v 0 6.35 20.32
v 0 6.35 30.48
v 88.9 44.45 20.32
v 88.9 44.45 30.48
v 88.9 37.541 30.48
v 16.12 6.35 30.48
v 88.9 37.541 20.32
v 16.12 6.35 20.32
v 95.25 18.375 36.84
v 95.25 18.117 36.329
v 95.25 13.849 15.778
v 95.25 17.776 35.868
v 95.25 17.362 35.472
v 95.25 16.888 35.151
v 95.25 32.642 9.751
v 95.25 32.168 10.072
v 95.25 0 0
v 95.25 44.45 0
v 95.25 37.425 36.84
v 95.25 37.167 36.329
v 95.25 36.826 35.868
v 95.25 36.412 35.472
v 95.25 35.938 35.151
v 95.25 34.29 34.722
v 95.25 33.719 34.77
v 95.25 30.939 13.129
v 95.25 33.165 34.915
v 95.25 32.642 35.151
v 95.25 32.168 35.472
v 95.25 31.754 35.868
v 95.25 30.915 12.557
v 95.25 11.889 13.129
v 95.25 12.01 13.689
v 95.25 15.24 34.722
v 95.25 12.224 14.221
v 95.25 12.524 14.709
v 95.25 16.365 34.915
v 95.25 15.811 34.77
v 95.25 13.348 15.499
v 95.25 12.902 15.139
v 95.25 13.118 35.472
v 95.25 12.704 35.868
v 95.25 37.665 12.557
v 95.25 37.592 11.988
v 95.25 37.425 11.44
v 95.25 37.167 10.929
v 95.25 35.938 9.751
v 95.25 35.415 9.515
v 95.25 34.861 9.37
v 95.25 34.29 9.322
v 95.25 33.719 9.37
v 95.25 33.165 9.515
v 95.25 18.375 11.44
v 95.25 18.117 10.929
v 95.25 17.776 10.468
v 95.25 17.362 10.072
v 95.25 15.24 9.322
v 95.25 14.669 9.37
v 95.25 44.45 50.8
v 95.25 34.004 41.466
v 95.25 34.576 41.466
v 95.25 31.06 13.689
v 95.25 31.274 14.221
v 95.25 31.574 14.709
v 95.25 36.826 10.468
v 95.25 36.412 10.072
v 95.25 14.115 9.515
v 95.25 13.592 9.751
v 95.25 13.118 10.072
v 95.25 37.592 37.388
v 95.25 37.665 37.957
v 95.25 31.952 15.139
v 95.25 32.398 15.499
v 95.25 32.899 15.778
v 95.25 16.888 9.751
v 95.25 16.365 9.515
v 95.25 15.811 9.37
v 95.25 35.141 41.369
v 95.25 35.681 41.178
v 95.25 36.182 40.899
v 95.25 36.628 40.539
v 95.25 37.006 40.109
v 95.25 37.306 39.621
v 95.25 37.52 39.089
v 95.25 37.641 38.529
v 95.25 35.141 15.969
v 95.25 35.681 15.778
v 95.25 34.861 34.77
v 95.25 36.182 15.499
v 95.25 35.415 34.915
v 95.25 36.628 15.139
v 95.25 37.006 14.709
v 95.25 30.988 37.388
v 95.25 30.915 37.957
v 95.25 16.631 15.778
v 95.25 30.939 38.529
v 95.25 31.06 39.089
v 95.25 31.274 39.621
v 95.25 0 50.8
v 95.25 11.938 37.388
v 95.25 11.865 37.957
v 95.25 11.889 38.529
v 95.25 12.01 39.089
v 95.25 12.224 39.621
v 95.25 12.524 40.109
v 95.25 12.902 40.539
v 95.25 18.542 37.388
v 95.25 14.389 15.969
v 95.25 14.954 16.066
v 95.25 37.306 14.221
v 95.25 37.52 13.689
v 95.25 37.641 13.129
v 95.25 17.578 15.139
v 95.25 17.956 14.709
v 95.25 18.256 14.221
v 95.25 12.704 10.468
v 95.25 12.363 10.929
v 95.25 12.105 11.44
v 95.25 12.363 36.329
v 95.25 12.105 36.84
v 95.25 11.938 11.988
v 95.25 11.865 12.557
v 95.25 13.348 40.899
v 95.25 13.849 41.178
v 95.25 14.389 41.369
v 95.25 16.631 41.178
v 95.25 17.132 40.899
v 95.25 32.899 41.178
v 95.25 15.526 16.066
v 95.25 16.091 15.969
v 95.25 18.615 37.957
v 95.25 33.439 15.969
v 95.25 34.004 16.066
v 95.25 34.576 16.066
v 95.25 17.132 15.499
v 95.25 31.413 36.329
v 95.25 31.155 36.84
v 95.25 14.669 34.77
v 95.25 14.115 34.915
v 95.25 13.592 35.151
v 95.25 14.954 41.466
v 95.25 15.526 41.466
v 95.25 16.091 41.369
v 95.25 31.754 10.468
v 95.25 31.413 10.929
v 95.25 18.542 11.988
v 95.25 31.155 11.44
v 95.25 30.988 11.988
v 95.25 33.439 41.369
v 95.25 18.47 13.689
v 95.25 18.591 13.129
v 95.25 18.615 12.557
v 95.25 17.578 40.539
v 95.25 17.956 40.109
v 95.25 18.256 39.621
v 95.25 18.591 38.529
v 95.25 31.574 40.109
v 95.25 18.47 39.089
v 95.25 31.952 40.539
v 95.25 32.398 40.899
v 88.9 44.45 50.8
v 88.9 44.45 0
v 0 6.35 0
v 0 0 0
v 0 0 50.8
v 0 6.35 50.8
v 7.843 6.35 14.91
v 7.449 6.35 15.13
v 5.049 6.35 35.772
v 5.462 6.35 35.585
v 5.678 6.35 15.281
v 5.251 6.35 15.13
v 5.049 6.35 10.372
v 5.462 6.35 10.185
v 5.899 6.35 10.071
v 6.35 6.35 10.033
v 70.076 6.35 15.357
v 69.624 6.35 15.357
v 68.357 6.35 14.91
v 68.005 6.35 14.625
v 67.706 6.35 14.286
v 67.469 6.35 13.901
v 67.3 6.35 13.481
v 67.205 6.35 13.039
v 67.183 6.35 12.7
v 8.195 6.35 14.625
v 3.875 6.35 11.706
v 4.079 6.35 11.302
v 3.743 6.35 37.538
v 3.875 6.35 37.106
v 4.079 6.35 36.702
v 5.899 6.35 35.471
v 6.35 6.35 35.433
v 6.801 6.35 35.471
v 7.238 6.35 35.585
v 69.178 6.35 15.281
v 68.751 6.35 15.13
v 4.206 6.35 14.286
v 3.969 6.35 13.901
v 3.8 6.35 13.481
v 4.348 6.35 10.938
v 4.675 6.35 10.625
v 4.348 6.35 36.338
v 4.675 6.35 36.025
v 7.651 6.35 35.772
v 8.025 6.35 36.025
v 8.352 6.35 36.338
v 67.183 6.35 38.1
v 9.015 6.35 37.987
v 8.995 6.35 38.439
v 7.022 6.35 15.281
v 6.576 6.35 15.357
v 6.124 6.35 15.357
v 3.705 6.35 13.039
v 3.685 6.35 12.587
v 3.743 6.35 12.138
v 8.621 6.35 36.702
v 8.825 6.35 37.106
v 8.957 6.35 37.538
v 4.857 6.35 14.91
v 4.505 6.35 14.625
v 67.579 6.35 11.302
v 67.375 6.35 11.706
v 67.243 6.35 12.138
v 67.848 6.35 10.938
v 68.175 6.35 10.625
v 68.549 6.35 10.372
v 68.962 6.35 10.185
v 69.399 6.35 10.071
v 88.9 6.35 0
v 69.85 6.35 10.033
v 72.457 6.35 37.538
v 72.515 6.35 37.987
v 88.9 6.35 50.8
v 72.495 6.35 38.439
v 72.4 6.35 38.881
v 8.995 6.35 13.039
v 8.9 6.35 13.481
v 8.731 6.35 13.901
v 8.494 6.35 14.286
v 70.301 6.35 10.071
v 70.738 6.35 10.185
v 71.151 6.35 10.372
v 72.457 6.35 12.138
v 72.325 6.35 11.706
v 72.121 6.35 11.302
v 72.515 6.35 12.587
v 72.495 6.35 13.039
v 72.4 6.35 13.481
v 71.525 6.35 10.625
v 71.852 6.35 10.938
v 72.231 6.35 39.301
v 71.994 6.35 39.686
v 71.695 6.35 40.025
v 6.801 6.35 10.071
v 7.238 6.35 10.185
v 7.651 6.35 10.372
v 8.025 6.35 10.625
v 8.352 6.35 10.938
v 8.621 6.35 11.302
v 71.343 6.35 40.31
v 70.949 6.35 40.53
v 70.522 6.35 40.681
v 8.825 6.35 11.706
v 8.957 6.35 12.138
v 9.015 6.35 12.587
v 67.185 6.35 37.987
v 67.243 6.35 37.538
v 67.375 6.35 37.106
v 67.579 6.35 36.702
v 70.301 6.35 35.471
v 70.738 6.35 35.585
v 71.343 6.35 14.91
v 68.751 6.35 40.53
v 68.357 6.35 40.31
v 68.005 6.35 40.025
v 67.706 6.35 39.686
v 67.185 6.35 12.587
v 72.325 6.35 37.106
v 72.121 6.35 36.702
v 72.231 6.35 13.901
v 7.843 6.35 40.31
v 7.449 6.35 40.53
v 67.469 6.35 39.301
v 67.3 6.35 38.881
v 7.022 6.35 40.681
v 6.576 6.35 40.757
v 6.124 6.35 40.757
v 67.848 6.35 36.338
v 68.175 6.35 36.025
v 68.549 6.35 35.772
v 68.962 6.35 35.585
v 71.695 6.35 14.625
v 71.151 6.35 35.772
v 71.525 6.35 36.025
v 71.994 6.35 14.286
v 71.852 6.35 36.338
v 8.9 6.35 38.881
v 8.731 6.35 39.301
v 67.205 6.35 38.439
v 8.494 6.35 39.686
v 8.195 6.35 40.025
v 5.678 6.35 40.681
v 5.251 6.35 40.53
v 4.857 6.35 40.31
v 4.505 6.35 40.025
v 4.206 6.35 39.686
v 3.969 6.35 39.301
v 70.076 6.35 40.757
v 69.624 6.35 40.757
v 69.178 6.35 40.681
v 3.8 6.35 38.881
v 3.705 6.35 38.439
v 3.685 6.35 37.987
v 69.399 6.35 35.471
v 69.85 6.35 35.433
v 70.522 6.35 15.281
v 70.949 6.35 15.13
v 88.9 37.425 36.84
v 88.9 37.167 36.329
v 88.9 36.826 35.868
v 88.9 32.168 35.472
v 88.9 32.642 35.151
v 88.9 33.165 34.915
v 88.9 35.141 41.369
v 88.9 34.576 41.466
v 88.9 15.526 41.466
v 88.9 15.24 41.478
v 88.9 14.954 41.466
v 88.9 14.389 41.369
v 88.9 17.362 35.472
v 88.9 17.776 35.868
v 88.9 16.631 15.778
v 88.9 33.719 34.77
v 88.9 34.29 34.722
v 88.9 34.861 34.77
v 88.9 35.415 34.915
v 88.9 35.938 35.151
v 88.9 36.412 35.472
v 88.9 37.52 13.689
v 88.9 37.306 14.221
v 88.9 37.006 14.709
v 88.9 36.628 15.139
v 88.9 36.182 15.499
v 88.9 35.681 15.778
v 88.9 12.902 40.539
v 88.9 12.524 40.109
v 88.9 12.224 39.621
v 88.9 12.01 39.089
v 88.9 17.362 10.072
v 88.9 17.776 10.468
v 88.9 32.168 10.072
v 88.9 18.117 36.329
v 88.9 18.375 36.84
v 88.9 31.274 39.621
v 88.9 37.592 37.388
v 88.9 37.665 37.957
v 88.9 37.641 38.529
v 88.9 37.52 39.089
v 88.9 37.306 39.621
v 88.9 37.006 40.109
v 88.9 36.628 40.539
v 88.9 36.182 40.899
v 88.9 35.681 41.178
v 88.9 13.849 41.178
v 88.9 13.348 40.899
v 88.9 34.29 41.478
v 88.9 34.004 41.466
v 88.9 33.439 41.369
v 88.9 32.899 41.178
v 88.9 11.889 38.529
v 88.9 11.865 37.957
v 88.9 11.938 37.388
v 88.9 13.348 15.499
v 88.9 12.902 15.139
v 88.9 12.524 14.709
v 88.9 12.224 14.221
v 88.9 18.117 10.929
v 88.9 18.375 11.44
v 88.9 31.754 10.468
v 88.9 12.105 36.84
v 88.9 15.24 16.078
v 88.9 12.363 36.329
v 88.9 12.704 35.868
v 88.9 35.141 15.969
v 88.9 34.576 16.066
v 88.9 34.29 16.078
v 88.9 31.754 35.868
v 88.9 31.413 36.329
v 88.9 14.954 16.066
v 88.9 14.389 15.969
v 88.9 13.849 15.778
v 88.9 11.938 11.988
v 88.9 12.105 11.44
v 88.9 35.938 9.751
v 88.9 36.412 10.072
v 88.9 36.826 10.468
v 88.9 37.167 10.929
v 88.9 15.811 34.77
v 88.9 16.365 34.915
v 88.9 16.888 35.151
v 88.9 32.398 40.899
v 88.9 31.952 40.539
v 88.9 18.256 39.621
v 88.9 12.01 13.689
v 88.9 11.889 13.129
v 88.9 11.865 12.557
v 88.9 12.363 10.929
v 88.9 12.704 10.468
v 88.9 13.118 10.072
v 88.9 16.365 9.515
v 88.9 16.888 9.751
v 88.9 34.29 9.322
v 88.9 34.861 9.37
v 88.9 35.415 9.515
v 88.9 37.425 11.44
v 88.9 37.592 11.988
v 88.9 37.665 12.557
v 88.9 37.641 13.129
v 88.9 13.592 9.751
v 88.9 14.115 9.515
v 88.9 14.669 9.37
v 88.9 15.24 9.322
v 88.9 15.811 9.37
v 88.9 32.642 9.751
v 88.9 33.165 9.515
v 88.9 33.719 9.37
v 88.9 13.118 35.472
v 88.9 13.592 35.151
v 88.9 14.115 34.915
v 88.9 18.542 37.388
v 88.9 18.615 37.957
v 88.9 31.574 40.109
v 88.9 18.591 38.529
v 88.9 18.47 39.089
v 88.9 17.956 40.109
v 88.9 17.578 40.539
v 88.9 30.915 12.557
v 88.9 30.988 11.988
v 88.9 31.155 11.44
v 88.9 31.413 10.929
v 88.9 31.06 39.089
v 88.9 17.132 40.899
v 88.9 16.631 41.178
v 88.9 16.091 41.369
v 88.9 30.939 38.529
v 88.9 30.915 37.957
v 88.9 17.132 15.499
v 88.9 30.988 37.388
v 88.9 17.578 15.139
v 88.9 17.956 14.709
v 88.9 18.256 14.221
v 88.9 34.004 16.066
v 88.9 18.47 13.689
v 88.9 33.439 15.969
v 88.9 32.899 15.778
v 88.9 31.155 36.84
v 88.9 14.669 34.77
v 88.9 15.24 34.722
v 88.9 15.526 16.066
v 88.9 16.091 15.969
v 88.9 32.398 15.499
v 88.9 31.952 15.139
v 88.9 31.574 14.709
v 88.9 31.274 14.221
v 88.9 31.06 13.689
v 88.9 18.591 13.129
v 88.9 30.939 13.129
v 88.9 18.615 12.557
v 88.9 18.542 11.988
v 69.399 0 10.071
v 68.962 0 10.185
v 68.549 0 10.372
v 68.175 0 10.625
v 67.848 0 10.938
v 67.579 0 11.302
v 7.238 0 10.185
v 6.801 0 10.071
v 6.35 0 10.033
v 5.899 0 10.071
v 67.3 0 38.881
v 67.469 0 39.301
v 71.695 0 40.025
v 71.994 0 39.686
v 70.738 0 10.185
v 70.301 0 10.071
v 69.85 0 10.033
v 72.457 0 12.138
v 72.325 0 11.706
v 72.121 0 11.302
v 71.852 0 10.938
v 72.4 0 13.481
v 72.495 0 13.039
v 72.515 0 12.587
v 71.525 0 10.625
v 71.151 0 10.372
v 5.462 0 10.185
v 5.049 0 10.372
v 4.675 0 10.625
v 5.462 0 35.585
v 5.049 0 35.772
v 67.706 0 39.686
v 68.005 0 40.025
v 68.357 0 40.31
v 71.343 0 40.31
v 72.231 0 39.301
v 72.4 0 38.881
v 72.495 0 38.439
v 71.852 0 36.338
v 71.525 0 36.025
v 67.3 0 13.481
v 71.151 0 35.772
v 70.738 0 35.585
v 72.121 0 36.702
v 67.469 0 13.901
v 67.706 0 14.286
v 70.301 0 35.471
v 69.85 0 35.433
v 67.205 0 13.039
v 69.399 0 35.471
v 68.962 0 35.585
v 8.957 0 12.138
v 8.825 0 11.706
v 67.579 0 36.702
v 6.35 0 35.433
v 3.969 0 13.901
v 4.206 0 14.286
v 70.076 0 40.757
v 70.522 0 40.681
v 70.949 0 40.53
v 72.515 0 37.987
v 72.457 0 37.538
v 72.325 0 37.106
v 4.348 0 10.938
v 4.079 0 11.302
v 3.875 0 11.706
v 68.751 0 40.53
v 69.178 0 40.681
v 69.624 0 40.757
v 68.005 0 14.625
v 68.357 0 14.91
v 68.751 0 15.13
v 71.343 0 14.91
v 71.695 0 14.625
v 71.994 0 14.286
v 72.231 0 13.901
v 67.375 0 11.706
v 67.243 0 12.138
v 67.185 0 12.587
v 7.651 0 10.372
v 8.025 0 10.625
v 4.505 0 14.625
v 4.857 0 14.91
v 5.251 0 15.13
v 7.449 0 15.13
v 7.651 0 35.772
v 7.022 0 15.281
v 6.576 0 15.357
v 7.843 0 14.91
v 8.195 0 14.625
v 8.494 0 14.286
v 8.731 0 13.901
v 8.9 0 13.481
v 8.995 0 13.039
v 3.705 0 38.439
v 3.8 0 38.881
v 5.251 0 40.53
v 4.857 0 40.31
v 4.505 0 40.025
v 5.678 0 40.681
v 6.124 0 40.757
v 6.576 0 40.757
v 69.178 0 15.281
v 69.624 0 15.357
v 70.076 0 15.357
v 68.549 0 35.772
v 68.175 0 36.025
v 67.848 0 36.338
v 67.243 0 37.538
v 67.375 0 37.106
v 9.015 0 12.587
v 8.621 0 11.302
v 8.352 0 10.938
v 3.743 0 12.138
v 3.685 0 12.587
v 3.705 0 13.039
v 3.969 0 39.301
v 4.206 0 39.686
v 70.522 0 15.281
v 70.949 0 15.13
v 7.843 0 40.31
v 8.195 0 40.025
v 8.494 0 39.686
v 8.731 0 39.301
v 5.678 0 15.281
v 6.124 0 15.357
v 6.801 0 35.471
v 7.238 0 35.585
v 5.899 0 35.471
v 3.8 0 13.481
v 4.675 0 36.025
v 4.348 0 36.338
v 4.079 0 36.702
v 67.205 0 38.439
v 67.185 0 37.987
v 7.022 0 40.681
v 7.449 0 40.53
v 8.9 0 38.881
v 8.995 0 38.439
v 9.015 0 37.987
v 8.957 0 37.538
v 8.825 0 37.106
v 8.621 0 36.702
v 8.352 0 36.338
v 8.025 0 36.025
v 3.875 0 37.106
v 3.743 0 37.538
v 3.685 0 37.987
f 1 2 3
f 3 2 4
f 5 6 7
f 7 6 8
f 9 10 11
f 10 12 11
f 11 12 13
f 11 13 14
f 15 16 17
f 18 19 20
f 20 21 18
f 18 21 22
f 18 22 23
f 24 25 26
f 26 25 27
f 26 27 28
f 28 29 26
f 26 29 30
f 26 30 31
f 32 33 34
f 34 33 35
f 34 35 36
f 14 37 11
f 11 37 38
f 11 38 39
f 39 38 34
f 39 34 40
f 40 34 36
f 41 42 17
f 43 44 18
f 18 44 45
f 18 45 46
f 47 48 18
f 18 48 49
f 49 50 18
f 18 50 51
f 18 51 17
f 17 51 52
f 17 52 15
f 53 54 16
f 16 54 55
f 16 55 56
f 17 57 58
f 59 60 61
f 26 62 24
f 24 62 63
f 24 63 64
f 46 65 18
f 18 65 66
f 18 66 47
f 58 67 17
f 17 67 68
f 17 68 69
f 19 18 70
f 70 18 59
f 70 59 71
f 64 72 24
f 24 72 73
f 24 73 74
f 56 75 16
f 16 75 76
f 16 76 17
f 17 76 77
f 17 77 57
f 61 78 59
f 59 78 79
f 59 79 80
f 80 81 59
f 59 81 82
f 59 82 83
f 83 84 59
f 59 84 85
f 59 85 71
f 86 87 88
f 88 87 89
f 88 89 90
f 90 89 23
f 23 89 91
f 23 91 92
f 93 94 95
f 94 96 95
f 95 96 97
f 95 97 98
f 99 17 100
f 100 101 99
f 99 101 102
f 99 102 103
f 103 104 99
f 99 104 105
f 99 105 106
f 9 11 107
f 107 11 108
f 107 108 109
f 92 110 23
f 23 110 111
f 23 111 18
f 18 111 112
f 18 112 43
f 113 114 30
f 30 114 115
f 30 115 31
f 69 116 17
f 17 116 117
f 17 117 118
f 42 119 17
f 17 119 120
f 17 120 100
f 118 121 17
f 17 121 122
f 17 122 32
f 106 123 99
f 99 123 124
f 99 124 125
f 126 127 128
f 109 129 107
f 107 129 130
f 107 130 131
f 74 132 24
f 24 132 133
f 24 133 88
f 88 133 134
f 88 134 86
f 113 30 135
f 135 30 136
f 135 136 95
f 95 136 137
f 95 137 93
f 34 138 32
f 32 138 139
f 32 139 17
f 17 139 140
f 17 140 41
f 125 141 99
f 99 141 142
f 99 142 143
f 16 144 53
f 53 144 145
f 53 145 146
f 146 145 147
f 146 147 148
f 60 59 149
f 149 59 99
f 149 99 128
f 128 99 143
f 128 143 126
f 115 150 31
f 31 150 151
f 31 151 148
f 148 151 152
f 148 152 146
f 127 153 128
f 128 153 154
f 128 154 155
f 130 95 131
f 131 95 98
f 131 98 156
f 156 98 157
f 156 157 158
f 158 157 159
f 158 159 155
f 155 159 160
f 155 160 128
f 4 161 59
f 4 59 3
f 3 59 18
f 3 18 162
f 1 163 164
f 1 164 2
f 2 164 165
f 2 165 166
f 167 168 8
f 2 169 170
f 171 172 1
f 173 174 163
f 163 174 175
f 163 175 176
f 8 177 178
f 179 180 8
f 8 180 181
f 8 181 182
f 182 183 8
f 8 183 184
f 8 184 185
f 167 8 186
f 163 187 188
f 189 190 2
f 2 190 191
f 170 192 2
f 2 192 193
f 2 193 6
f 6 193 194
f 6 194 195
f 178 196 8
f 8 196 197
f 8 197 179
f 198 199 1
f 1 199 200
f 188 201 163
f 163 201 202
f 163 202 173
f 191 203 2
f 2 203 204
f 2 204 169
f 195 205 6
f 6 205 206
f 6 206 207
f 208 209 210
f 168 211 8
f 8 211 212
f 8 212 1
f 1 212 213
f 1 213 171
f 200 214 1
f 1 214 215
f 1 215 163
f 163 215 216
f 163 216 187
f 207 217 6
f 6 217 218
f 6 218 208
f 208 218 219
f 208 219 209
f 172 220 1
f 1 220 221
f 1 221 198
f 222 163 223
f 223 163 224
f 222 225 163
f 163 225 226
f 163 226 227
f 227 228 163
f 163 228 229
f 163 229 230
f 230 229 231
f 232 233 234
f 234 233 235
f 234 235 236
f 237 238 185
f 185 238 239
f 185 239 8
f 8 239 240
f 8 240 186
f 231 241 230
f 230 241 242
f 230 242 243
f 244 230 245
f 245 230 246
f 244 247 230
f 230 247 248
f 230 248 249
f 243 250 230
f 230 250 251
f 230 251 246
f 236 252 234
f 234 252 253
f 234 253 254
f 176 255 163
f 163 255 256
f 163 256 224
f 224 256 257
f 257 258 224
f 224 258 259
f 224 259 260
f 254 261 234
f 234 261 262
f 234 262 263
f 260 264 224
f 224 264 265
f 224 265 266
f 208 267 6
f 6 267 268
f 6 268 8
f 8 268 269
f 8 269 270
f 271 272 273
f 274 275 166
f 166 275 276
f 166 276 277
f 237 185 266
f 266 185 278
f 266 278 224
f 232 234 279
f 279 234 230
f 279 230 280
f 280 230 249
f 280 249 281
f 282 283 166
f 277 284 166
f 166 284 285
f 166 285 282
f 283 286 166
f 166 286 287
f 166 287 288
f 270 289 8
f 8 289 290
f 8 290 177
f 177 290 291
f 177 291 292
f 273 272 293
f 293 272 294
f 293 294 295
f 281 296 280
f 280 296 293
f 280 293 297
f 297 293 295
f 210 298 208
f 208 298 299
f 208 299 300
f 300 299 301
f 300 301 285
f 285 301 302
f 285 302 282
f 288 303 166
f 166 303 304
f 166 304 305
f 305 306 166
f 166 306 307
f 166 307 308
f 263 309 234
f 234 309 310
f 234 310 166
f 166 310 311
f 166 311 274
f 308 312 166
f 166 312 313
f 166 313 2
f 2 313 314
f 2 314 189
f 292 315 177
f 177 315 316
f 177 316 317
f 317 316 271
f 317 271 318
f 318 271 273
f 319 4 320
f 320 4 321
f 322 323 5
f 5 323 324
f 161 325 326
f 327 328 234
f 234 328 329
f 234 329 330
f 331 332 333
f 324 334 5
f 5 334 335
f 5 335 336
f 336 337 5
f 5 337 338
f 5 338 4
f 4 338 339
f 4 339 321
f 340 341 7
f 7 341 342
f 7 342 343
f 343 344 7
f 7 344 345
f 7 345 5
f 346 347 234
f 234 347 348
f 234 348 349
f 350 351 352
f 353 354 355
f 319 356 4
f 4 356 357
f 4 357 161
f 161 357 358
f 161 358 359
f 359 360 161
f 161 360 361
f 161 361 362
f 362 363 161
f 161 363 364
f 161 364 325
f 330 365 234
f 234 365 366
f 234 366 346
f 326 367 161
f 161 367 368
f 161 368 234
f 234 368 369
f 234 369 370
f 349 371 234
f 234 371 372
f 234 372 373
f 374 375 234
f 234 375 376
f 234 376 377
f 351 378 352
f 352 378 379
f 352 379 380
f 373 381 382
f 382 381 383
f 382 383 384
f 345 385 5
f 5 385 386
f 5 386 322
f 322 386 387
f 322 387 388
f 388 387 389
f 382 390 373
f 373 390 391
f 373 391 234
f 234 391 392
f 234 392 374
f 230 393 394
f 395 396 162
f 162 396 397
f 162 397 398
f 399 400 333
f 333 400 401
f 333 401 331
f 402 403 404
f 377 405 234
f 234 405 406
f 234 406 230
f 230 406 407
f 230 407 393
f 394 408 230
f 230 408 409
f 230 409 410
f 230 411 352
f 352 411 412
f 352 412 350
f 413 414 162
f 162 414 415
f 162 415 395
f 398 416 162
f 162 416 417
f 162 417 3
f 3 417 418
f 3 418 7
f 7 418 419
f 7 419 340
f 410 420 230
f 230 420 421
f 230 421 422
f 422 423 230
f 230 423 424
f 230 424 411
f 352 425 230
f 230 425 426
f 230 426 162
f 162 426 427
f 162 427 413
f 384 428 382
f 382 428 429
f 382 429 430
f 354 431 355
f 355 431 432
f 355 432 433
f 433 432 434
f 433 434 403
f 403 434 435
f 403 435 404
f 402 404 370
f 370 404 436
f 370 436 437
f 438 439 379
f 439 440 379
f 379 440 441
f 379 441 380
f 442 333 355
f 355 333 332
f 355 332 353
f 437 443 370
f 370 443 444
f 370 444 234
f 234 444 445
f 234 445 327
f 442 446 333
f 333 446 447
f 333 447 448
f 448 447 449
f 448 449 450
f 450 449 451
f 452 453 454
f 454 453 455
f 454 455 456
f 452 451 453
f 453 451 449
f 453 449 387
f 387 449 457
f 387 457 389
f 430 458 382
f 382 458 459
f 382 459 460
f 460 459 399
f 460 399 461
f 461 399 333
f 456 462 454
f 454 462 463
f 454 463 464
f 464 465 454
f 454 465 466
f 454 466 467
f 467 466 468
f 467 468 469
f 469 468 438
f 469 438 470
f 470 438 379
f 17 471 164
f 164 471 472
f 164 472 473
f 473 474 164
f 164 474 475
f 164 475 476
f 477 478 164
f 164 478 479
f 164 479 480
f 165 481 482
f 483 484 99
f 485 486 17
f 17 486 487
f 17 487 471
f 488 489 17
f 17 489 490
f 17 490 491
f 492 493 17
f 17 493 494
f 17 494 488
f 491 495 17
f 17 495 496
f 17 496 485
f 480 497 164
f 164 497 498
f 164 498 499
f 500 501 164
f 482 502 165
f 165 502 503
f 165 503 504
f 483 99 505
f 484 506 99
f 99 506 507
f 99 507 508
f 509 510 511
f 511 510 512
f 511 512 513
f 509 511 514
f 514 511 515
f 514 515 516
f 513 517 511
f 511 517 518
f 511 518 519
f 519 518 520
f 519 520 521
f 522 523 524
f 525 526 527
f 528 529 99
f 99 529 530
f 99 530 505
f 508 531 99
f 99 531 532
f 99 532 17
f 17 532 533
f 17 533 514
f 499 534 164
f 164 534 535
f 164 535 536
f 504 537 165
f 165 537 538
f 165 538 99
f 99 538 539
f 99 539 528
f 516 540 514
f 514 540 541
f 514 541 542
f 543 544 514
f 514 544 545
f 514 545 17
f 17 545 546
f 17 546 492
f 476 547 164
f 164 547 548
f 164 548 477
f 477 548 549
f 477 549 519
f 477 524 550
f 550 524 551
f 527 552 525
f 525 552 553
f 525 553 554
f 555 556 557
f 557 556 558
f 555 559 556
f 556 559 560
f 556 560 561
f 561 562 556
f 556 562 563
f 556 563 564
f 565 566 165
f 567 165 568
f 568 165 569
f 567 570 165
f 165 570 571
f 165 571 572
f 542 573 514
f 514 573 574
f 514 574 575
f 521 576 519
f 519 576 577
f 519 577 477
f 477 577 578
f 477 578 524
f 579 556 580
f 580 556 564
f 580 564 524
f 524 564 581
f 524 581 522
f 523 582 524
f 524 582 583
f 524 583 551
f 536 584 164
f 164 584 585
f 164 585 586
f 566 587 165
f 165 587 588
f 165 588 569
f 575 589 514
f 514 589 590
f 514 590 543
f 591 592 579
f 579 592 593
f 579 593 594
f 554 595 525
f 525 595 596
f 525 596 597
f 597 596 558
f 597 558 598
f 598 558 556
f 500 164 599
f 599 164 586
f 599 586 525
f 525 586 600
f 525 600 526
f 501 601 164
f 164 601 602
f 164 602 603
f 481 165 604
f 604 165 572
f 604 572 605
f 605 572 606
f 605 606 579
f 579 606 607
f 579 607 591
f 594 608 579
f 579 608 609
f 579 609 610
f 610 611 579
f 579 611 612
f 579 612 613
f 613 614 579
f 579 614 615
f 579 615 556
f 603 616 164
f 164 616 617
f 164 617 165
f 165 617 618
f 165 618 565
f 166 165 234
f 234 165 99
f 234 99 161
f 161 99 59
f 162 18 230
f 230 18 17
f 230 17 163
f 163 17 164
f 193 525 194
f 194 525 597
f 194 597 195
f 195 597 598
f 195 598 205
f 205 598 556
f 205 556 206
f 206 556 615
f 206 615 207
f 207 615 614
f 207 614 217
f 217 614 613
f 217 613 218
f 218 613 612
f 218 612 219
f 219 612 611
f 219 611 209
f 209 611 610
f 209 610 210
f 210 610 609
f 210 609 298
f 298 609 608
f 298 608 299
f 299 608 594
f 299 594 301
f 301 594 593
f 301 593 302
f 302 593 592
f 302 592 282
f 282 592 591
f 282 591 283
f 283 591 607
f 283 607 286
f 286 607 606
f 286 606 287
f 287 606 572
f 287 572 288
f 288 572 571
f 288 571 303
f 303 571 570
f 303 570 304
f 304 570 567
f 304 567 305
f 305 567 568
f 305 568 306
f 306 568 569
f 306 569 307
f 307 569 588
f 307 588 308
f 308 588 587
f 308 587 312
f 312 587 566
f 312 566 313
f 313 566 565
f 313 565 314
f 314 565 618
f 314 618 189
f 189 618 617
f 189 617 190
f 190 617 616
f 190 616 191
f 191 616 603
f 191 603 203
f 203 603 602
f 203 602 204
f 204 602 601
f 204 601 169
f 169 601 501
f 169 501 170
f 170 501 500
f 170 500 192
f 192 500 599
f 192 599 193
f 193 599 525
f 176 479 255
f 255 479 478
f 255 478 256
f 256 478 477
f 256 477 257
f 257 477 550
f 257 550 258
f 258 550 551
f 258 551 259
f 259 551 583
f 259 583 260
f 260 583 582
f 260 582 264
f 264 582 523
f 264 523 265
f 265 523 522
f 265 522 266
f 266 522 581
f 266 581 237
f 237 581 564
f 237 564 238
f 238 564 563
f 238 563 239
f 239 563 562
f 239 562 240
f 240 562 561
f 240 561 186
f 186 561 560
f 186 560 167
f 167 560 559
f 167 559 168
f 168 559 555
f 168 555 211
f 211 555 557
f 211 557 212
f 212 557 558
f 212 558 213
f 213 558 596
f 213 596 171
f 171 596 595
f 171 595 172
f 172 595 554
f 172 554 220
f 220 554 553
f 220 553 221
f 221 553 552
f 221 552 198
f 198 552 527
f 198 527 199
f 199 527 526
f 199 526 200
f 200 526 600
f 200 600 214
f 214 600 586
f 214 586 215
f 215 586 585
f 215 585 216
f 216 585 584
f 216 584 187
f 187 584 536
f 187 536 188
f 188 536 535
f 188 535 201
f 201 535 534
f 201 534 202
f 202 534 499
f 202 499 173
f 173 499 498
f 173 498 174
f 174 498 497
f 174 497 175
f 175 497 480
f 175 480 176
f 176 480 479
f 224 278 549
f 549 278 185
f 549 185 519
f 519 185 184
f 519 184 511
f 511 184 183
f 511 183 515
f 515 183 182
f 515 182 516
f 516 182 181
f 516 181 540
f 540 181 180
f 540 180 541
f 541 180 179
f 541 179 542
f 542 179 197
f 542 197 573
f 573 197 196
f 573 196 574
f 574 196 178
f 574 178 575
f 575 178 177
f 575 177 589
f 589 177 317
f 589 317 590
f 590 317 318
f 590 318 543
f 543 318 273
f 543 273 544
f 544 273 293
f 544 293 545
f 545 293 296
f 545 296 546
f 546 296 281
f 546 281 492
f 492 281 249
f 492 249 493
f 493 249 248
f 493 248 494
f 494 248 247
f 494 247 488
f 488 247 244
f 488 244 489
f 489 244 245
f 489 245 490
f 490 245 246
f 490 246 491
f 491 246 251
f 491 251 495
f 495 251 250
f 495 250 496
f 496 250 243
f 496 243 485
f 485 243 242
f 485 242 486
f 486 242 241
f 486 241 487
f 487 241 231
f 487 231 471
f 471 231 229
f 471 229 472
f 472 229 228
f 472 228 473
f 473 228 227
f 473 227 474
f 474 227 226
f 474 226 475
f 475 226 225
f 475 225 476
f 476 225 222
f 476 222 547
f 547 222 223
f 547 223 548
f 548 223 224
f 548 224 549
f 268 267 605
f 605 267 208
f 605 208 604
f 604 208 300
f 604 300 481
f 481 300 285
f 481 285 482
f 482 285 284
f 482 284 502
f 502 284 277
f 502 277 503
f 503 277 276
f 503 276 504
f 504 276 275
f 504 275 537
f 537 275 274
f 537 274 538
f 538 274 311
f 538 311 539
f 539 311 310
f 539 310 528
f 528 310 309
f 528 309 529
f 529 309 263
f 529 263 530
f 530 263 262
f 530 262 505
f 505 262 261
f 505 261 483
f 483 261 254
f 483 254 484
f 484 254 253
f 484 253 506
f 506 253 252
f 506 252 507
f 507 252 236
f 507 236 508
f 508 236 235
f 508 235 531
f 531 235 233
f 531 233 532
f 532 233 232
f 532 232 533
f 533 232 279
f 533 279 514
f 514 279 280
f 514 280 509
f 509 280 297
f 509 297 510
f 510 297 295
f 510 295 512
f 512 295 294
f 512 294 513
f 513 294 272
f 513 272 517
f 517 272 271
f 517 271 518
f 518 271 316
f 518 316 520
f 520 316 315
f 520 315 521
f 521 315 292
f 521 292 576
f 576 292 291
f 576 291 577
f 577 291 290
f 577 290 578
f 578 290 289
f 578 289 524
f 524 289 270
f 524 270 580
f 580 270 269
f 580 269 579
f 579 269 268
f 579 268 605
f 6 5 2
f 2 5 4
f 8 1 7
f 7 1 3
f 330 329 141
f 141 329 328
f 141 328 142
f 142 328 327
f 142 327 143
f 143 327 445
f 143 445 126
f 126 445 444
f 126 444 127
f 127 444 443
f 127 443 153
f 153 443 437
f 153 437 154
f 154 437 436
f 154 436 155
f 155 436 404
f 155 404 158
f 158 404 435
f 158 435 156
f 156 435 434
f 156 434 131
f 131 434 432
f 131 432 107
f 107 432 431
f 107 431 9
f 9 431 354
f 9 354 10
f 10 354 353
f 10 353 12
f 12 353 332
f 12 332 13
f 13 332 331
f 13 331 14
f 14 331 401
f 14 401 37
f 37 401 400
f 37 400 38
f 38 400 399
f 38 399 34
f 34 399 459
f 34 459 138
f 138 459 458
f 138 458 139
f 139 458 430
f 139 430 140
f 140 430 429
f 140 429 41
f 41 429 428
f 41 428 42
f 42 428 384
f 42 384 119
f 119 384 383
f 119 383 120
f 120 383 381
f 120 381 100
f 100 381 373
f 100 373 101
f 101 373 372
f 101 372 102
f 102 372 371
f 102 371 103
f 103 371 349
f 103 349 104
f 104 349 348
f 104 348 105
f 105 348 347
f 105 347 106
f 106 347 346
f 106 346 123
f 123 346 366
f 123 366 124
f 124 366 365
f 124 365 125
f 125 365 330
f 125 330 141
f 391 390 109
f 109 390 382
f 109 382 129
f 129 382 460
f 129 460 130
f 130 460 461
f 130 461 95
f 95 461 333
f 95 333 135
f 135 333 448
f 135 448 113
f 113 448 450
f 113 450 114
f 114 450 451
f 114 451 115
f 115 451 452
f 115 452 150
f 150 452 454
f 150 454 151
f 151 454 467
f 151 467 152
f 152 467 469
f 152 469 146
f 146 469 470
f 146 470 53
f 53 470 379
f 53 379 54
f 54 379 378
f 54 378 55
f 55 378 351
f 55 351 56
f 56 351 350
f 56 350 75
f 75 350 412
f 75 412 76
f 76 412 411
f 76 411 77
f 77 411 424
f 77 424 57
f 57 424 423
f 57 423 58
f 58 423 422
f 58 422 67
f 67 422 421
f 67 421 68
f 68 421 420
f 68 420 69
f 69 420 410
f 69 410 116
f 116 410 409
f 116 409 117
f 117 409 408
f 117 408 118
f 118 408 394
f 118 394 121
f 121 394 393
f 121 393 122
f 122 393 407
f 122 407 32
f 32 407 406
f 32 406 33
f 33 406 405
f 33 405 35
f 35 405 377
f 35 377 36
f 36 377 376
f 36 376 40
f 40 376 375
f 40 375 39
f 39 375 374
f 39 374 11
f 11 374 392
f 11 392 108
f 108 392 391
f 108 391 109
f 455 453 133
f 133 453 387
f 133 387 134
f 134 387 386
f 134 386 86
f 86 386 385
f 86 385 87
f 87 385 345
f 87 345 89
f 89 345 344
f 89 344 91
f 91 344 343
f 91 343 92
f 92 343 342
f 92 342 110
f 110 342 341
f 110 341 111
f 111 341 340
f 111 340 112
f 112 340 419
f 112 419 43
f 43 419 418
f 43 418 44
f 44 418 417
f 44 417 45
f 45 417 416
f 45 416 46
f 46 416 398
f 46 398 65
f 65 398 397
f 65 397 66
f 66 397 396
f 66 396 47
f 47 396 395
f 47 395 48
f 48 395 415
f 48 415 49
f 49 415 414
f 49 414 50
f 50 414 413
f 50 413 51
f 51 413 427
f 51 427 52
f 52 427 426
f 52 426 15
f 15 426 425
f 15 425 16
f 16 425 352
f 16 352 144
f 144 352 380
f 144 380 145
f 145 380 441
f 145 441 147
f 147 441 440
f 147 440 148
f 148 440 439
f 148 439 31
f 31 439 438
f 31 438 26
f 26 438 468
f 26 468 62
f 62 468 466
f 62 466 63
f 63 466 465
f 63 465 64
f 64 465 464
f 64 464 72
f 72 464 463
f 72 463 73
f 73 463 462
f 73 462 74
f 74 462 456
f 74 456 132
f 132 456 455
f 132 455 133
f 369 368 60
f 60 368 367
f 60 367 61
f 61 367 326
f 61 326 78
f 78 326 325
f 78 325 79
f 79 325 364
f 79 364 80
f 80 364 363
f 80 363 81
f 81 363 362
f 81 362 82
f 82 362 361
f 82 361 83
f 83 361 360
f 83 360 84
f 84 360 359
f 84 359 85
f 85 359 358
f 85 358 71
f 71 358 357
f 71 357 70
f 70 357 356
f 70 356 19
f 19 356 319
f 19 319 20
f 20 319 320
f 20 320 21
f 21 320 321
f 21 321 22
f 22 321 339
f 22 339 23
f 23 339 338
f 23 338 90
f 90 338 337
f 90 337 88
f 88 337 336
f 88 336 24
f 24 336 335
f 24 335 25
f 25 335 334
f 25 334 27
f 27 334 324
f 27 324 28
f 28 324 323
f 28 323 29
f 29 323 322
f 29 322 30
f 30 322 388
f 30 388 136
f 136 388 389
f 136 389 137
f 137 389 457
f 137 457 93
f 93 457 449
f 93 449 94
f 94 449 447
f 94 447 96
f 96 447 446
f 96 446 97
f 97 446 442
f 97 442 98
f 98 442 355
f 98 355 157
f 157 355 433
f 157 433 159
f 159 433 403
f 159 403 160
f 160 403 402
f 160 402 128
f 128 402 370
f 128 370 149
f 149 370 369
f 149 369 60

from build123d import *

# Parameters (mm, degrees)
BOSS_EXTRUDE1_DEPTH = 50.8
SKETCH4_R           = 2.667
CUT_EXTRUDE1_DEPTH  = 117.743329574
SKETCH5_W           = 88.9
SKETCH5_H           = 38.1
CUT_EXTRUDE2_DEPTH  = 20.32
SKETCH6_W           = 88.9
SKETCH6_H           = 38.1
CUT_EXTRUDE3_DEPTH  = 20.32
SKETCH7_R           = 3.175
CUT_EXTRUDE4_DEPTH  = 117.743329574


with BuildPart() as part:
    # Sketch3 → Boss-Extrude1 (new body)
    with BuildSketch(Plane.XY):
        Polygon((0, 6.35), (88.9, 44.45), (95.25, 44.45), (95.25, 0), (0, 0), align=None)
        Polygon((16.120053074, 6.35), (88.9, 6.35), (88.9, 37.541405825), align=None, mode=Mode.SUBTRACT)
    extrude(amount=BOSS_EXTRUDE1_DEPTH)

    # Sketch4 → Cut-Extrude1 (cut, through all)
    with BuildSketch(Plane.XZ):
        with Locations(Location((6.35, 38.1, 0), (0, 0, 270))):
            Circle(SKETCH4_R)
        with Locations(Location((6.35, 12.7, 0), (0, 0, 270))):
            Circle(SKETCH4_R)
        with Locations(Location((69.85, 12.7, 0), (0, 0, 270))):
            Circle(SKETCH4_R)
        with Locations(Location((69.85, 38.1, 0), (0, 0, 270))):
            Circle(SKETCH4_R)
    extrude(amount=-CUT_EXTRUDE1_DEPTH, mode=Mode.SUBTRACT)

    # Sketch5 → Cut-Extrude2 (cut)
    with BuildSketch(Plane.XY.offset(50.8)):
        with Locations((44.45, 25.4)):
            Rectangle(SKETCH5_W, SKETCH5_H)
    extrude(amount=-CUT_EXTRUDE2_DEPTH, mode=Mode.SUBTRACT)

    # Sketch6 → Cut-Extrude3 (cut)
    with BuildSketch(Plane(origin=(0, 0, 0), x_dir=(-1, 0, 0), z_dir=(0, 0, -1))):
        with Locations((-44.45, 25.4)):
            Rectangle(SKETCH6_W, SKETCH6_H)
    extrude(amount=-CUT_EXTRUDE3_DEPTH, mode=Mode.SUBTRACT)

    # Sketch7 → Cut-Extrude4 (cut, through all)
    with BuildSketch(Plane(origin=(95.25, 0, 0), x_dir=(0, 0, -1), z_dir=(1, 0, 0))):
        with Locations((-38.1, 15.24)):
            Circle(SKETCH7_R)
        with Locations((-12.7, 15.24)):
            Circle(SKETCH7_R)
        with Locations((-12.7, 34.29)):
            Circle(SKETCH7_R)
        with Locations((-38.1, 34.29)):
            Circle(SKETCH7_R)
    extrude(amount=-CUT_EXTRUDE4_DEPTH, mode=Mode.SUBTRACT)


solid = part.part
